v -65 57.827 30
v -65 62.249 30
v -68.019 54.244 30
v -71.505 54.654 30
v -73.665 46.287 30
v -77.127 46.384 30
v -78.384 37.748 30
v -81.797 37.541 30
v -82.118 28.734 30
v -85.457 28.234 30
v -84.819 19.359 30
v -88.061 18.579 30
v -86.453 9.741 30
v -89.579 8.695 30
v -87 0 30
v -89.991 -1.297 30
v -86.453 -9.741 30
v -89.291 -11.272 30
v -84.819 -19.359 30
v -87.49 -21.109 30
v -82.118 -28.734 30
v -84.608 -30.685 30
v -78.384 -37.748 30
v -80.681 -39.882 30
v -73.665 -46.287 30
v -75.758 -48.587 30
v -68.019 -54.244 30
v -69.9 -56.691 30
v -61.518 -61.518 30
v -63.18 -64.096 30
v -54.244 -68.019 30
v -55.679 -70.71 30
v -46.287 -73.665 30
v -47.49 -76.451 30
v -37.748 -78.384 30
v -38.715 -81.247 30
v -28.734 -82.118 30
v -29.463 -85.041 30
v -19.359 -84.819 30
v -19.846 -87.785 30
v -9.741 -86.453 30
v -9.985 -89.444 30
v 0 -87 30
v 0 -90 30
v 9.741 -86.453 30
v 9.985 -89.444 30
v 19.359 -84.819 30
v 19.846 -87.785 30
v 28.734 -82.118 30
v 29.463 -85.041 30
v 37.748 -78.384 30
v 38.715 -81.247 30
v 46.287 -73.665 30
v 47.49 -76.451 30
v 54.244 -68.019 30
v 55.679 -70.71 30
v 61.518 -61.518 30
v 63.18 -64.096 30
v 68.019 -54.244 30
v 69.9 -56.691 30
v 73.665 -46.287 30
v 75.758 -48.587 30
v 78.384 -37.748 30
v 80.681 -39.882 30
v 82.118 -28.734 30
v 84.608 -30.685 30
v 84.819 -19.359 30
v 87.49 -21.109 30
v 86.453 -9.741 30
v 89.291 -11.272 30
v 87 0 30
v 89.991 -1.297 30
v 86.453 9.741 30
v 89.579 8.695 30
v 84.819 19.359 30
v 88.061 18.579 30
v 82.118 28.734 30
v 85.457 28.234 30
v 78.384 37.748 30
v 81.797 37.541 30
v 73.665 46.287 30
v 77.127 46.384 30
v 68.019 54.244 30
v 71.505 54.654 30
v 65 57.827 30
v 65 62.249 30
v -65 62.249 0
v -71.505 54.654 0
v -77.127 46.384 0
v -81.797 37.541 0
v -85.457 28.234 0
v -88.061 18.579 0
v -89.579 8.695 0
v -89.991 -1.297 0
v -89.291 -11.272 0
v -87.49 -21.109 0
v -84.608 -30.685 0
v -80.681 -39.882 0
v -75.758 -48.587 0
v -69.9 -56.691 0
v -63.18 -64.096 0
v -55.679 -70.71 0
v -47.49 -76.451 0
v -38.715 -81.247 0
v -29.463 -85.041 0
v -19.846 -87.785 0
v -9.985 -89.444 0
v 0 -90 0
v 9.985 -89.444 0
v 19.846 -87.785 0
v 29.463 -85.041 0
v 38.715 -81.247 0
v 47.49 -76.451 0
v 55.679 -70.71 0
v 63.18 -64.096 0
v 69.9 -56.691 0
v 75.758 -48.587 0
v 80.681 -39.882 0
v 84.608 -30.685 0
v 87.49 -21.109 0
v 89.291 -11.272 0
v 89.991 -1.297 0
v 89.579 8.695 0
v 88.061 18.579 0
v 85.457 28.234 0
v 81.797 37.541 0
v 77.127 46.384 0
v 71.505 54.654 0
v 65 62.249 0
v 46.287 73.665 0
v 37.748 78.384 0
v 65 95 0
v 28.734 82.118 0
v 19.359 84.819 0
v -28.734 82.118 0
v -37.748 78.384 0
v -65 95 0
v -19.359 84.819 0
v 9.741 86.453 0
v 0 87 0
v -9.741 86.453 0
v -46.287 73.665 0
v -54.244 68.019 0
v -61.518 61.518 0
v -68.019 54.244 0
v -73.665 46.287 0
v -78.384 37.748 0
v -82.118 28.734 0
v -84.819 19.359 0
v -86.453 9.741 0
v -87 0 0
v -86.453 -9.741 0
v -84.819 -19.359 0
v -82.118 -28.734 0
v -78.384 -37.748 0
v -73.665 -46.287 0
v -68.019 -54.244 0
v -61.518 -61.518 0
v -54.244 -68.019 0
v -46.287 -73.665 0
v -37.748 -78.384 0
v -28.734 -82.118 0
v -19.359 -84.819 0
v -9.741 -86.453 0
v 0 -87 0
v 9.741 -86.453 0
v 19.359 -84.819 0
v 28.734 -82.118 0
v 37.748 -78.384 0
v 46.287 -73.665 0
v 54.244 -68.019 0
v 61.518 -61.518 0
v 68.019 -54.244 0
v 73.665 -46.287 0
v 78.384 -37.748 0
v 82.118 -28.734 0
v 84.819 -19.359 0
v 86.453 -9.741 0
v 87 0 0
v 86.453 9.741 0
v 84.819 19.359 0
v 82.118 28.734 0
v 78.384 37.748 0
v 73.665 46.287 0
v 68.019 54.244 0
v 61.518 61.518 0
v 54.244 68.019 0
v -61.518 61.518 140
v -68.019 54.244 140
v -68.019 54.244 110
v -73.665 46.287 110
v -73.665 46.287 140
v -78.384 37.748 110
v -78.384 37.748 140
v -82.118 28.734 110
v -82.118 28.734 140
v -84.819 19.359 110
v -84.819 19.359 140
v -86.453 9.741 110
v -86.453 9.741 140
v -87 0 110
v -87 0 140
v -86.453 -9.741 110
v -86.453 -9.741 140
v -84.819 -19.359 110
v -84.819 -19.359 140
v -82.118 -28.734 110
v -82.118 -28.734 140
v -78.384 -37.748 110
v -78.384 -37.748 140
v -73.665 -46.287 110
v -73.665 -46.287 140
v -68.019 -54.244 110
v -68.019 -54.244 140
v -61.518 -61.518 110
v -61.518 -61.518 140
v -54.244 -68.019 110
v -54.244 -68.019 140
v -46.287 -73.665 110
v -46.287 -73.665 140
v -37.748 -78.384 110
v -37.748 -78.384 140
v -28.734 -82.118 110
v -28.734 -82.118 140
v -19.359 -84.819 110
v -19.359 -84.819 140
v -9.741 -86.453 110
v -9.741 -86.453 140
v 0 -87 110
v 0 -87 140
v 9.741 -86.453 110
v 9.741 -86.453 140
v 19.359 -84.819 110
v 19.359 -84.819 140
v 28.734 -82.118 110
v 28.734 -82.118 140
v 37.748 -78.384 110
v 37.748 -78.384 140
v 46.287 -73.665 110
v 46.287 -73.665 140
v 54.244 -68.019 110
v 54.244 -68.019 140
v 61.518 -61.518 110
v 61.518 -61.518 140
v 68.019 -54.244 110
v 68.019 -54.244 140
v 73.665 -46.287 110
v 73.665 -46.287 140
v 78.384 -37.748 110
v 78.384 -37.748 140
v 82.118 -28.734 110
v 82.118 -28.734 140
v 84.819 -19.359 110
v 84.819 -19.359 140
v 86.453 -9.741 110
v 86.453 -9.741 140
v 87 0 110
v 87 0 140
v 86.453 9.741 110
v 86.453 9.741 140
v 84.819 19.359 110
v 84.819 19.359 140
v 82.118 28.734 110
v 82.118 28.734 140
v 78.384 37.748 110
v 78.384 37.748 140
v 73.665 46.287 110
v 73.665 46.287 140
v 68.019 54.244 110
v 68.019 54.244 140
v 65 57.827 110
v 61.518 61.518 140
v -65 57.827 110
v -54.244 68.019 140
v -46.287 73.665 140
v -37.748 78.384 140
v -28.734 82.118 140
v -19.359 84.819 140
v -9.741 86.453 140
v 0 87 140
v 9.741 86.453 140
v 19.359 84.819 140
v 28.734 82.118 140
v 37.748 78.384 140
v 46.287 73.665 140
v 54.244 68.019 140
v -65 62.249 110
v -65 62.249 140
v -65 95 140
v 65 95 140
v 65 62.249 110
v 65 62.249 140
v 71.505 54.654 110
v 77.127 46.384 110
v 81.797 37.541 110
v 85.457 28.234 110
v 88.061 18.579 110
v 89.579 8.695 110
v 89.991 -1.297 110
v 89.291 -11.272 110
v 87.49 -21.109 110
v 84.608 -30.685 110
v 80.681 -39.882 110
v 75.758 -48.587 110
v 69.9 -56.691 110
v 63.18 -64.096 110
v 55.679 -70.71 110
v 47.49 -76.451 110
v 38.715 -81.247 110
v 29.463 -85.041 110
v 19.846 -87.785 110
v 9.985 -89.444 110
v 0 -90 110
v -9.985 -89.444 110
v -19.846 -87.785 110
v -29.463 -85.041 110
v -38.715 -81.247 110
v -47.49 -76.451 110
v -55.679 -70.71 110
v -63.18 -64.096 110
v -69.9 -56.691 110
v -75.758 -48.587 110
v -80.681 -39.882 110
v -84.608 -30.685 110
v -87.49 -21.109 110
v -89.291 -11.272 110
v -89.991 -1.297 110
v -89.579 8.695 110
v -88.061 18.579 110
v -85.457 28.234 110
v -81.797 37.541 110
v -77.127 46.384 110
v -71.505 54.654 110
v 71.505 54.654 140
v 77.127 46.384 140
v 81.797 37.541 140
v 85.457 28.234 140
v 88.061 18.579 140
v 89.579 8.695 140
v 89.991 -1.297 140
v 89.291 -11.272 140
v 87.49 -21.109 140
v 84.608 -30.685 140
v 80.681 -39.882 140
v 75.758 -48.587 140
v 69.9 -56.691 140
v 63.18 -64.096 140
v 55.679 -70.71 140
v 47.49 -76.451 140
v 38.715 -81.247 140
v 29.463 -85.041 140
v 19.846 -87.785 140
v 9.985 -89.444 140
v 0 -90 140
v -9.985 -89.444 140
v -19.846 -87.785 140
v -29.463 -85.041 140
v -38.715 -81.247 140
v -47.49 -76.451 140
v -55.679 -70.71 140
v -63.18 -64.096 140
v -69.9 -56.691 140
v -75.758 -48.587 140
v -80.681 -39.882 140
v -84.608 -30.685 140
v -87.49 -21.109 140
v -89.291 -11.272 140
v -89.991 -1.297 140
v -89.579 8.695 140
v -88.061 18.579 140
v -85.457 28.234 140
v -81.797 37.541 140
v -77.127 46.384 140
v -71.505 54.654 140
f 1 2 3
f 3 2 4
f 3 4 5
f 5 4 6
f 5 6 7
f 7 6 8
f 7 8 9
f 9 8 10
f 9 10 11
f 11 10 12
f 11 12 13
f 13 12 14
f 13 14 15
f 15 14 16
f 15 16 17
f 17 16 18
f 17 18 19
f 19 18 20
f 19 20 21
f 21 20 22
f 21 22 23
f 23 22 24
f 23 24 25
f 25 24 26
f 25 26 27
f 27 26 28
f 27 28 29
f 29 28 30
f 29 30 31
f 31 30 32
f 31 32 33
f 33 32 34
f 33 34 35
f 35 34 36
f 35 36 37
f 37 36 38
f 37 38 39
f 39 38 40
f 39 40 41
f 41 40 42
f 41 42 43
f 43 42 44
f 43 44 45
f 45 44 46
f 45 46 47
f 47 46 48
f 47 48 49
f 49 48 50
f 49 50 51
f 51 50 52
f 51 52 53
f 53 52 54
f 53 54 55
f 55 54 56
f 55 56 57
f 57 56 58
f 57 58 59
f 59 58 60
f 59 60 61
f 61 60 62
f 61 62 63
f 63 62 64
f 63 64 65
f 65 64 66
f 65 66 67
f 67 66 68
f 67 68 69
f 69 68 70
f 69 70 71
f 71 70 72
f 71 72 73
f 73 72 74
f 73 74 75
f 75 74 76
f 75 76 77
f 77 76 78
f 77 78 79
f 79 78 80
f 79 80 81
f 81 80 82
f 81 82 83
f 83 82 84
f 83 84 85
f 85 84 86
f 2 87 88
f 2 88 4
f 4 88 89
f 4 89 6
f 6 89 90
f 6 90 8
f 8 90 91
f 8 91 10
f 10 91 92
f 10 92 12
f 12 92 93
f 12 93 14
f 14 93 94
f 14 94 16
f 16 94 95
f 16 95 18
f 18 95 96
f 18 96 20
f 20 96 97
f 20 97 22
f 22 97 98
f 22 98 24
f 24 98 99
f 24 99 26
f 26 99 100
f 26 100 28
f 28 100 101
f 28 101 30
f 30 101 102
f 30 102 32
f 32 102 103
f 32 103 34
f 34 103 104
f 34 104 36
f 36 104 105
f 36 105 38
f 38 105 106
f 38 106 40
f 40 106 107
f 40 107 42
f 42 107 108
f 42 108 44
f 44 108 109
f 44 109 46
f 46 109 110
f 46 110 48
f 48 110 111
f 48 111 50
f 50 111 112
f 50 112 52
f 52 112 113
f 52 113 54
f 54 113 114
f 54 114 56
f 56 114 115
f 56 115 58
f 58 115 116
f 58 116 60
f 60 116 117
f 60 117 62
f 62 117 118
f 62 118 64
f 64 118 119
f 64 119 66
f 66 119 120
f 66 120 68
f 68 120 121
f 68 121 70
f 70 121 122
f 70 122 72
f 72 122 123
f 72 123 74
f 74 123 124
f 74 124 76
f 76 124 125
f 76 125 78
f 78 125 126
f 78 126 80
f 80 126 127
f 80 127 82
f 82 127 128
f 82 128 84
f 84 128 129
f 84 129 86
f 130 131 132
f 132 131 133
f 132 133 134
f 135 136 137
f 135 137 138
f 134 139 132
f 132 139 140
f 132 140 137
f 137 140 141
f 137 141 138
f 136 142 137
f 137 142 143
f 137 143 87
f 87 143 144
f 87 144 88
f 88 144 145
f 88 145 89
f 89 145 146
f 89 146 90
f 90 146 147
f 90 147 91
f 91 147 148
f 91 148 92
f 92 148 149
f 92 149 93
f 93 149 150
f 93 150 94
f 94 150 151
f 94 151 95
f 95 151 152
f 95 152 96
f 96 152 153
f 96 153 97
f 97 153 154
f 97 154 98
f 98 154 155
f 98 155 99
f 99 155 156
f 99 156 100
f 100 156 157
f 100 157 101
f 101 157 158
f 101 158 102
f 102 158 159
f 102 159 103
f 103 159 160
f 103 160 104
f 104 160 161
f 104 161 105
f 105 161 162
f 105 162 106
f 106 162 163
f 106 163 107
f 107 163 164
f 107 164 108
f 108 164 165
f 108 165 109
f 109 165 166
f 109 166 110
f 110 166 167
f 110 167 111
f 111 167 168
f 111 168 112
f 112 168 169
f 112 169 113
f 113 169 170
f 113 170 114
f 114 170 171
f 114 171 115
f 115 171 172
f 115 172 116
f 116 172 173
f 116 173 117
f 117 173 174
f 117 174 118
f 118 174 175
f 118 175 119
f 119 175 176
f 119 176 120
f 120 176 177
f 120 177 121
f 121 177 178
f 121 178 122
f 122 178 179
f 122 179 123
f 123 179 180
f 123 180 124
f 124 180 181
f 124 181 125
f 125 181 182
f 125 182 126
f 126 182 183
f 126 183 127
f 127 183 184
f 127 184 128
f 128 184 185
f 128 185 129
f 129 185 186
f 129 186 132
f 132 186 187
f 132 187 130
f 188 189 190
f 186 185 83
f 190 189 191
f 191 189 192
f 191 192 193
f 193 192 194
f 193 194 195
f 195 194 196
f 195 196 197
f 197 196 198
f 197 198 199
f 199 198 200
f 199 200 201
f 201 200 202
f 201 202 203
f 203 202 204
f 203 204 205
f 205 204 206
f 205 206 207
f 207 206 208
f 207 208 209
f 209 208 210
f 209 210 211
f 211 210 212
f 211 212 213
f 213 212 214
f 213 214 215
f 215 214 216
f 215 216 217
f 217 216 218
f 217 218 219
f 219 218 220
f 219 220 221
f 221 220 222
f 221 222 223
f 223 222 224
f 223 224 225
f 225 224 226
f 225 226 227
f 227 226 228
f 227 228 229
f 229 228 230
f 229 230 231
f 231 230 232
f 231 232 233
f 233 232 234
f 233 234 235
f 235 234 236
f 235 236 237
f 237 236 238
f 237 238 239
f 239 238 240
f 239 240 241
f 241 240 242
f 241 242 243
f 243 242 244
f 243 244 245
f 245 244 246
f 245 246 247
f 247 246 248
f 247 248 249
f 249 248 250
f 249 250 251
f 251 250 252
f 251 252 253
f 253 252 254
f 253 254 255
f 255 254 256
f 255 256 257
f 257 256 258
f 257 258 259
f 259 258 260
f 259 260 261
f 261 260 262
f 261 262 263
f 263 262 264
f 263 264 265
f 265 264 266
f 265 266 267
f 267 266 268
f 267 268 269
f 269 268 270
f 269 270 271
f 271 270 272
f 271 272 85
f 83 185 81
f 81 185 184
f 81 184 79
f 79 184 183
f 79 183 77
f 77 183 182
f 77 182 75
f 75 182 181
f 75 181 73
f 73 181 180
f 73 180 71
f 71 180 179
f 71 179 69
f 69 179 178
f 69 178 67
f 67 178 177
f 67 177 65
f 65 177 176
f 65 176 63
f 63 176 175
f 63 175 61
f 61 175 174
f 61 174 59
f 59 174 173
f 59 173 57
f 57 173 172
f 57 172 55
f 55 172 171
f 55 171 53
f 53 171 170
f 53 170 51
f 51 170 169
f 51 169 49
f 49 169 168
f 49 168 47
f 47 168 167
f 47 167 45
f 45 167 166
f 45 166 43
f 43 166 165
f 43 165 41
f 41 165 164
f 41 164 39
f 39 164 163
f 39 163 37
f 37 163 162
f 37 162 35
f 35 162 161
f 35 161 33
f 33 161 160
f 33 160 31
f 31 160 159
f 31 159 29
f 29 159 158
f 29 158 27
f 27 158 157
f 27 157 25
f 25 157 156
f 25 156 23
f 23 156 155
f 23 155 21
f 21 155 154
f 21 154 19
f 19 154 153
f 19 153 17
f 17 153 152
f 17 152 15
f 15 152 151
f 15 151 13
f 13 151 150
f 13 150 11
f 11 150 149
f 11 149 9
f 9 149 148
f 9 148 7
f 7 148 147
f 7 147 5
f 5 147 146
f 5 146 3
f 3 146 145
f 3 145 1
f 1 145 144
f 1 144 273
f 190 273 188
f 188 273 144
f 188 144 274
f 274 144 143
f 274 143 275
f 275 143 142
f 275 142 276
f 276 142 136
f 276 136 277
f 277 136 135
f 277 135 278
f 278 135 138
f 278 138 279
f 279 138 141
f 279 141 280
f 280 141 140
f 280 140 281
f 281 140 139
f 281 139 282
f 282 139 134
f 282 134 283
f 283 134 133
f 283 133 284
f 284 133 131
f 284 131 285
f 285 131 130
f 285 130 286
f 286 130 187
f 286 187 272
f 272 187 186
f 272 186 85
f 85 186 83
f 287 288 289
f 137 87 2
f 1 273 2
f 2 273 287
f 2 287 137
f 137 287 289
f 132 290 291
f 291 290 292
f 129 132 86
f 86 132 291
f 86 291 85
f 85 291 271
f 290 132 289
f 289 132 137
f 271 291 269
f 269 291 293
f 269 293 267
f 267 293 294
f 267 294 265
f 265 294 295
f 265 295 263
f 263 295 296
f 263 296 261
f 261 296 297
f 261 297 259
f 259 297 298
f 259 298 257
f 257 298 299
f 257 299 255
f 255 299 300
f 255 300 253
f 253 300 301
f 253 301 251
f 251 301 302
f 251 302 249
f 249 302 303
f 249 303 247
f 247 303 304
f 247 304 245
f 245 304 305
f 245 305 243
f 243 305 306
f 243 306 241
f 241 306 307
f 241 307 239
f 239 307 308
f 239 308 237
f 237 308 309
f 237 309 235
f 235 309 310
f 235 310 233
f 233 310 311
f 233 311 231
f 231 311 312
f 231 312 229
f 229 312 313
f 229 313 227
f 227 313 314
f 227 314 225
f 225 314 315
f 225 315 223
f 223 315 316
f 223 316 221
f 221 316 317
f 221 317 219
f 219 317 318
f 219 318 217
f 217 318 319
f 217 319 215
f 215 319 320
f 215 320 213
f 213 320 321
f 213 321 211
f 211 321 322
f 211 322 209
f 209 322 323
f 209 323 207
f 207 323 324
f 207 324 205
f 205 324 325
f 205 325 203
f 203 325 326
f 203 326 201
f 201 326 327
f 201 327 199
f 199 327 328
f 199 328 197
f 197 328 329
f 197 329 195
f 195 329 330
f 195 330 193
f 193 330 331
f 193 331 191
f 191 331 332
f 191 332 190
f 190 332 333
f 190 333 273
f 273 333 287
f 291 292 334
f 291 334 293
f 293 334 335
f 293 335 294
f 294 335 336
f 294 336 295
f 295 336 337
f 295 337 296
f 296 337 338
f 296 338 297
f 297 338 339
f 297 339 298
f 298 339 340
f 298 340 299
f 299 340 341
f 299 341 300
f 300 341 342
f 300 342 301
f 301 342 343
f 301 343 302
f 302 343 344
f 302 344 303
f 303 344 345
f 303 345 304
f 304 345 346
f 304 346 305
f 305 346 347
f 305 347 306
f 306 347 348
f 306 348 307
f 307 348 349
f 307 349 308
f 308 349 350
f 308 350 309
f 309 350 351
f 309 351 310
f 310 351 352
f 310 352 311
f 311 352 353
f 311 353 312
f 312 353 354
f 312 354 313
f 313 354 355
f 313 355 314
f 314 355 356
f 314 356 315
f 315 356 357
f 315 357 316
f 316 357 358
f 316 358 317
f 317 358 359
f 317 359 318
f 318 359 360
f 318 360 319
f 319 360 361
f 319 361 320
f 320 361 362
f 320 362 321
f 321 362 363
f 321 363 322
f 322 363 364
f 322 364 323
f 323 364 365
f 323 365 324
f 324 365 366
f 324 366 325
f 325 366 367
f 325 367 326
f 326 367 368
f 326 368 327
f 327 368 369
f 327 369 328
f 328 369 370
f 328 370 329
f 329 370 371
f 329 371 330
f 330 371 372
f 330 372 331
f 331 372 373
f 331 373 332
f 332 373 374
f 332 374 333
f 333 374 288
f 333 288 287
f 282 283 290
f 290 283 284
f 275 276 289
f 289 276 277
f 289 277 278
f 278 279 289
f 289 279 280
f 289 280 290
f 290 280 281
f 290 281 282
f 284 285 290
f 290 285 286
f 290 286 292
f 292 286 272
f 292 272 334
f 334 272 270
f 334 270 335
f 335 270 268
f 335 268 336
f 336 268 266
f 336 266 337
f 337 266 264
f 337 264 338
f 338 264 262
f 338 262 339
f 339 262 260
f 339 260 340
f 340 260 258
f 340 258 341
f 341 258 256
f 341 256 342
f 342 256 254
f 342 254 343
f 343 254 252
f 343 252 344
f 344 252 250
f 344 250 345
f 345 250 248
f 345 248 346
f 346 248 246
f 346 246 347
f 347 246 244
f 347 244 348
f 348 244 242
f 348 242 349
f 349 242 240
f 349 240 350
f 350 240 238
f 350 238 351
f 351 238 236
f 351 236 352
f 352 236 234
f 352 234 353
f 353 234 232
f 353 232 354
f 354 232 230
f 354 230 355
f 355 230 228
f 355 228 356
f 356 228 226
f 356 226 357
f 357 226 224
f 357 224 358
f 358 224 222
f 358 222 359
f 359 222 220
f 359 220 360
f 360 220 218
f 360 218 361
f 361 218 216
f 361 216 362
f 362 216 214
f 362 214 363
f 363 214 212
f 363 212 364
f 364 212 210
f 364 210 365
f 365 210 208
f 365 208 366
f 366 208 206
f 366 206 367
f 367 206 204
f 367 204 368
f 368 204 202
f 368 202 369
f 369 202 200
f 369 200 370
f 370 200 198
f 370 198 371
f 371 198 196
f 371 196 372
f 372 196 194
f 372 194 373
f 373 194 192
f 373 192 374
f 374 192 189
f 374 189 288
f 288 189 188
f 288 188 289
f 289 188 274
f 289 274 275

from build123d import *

# Parameters (mm, degrees)
SKETCH1_R                       = 90
SKETCH1_R_2                     = 87
BOSS_EXTRUDE1_DEPTH             = 30
BOSS_EXTRUDE2_REACH             = 205.47
SKETCH2_W                       = 130
SKETCH2_H                       = 30
BOSS_EXTRUDE2_DIRECTION_2_DEPTH = 5
BOSS_EXTRUDE3_DEPTH             = 40


with BuildPart() as part:
    # Sketch1 → Boss-Extrude1 (new body)
    with BuildSketch(Plane.XY):
        Circle(SKETCH1_R)
        Circle(SKETCH1_R_2, mode=Mode.SUBTRACT)
    extrude(amount=BOSS_EXTRUDE1_DEPTH)

    # Boss-Extrude2: up to this face of the body
    boss_extrude2_end = part.part.faces().sort_by_distance((-90, 0, 15))[0]
    # Sketch2 → Boss-Extrude2 (add, up to the picked face)
    with BuildSketch(Plane(origin=(0, 90, 0), x_dir=(1, 0, 0), z_dir=(0, 1, 0)), mode=Mode.PRIVATE) as boss_extrude2_sk1:
        with Locations((0, -15)):
            Rectangle(SKETCH2_W, SKETCH2_H)
    boss_extrude2_tool1 = split(extrude(boss_extrude2_sk1.sketch, amount=-BOSS_EXTRUDE2_REACH, mode=Mode.PRIVATE), bisect_by=boss_extrude2_end, keep=Keep.BOTH, mode=Mode.PRIVATE)
    add(boss_extrude2_tool1.solids().sort_by(Axis((0, 90, 15), (0, -1, 0)))[0])
    add(boss_extrude2_tool1.solids().sort_by(Axis((0, 90, 15), (0, -1, 0)))[1])

    # Sketch2 → Boss-Extrude2 direction 2 (add)
    with BuildSketch(Plane(origin=(0, 90, 0), x_dir=(1, 0, 0), z_dir=(0, 1, 0))):
        with Locations((0, -15)):
            Rectangle(SKETCH2_W, SKETCH2_H)
    extrude(amount=BOSS_EXTRUDE2_DIRECTION_2_DEPTH)

    # Sketch3 → Boss-Extrude3 (add)
    with BuildSketch(Plane.XY.offset(30)):
        with BuildLine():
            Line((65, 95), (-65, 95))
            Line((-65, 95), (-65, 62.24949799))
            Line((-65, 62.24949799), (-65, 57.827329179))
            ThreePointArc((-65, 57.827329179), (0, 87), (65, 57.827329179))
            Line((65, 57.827329179), (65, 62.24949799))
            Line((65, 62.24949799), (65, 95))
        make_face()
    extrude(amount=BOSS_EXTRUDE3_DEPTH)

    # Mirror2: part across plane


with BuildPart() as part_1:
    add(part.part)
    add(part.part.mirror(Plane.XY.offset(70)))


solid = part_1.part
